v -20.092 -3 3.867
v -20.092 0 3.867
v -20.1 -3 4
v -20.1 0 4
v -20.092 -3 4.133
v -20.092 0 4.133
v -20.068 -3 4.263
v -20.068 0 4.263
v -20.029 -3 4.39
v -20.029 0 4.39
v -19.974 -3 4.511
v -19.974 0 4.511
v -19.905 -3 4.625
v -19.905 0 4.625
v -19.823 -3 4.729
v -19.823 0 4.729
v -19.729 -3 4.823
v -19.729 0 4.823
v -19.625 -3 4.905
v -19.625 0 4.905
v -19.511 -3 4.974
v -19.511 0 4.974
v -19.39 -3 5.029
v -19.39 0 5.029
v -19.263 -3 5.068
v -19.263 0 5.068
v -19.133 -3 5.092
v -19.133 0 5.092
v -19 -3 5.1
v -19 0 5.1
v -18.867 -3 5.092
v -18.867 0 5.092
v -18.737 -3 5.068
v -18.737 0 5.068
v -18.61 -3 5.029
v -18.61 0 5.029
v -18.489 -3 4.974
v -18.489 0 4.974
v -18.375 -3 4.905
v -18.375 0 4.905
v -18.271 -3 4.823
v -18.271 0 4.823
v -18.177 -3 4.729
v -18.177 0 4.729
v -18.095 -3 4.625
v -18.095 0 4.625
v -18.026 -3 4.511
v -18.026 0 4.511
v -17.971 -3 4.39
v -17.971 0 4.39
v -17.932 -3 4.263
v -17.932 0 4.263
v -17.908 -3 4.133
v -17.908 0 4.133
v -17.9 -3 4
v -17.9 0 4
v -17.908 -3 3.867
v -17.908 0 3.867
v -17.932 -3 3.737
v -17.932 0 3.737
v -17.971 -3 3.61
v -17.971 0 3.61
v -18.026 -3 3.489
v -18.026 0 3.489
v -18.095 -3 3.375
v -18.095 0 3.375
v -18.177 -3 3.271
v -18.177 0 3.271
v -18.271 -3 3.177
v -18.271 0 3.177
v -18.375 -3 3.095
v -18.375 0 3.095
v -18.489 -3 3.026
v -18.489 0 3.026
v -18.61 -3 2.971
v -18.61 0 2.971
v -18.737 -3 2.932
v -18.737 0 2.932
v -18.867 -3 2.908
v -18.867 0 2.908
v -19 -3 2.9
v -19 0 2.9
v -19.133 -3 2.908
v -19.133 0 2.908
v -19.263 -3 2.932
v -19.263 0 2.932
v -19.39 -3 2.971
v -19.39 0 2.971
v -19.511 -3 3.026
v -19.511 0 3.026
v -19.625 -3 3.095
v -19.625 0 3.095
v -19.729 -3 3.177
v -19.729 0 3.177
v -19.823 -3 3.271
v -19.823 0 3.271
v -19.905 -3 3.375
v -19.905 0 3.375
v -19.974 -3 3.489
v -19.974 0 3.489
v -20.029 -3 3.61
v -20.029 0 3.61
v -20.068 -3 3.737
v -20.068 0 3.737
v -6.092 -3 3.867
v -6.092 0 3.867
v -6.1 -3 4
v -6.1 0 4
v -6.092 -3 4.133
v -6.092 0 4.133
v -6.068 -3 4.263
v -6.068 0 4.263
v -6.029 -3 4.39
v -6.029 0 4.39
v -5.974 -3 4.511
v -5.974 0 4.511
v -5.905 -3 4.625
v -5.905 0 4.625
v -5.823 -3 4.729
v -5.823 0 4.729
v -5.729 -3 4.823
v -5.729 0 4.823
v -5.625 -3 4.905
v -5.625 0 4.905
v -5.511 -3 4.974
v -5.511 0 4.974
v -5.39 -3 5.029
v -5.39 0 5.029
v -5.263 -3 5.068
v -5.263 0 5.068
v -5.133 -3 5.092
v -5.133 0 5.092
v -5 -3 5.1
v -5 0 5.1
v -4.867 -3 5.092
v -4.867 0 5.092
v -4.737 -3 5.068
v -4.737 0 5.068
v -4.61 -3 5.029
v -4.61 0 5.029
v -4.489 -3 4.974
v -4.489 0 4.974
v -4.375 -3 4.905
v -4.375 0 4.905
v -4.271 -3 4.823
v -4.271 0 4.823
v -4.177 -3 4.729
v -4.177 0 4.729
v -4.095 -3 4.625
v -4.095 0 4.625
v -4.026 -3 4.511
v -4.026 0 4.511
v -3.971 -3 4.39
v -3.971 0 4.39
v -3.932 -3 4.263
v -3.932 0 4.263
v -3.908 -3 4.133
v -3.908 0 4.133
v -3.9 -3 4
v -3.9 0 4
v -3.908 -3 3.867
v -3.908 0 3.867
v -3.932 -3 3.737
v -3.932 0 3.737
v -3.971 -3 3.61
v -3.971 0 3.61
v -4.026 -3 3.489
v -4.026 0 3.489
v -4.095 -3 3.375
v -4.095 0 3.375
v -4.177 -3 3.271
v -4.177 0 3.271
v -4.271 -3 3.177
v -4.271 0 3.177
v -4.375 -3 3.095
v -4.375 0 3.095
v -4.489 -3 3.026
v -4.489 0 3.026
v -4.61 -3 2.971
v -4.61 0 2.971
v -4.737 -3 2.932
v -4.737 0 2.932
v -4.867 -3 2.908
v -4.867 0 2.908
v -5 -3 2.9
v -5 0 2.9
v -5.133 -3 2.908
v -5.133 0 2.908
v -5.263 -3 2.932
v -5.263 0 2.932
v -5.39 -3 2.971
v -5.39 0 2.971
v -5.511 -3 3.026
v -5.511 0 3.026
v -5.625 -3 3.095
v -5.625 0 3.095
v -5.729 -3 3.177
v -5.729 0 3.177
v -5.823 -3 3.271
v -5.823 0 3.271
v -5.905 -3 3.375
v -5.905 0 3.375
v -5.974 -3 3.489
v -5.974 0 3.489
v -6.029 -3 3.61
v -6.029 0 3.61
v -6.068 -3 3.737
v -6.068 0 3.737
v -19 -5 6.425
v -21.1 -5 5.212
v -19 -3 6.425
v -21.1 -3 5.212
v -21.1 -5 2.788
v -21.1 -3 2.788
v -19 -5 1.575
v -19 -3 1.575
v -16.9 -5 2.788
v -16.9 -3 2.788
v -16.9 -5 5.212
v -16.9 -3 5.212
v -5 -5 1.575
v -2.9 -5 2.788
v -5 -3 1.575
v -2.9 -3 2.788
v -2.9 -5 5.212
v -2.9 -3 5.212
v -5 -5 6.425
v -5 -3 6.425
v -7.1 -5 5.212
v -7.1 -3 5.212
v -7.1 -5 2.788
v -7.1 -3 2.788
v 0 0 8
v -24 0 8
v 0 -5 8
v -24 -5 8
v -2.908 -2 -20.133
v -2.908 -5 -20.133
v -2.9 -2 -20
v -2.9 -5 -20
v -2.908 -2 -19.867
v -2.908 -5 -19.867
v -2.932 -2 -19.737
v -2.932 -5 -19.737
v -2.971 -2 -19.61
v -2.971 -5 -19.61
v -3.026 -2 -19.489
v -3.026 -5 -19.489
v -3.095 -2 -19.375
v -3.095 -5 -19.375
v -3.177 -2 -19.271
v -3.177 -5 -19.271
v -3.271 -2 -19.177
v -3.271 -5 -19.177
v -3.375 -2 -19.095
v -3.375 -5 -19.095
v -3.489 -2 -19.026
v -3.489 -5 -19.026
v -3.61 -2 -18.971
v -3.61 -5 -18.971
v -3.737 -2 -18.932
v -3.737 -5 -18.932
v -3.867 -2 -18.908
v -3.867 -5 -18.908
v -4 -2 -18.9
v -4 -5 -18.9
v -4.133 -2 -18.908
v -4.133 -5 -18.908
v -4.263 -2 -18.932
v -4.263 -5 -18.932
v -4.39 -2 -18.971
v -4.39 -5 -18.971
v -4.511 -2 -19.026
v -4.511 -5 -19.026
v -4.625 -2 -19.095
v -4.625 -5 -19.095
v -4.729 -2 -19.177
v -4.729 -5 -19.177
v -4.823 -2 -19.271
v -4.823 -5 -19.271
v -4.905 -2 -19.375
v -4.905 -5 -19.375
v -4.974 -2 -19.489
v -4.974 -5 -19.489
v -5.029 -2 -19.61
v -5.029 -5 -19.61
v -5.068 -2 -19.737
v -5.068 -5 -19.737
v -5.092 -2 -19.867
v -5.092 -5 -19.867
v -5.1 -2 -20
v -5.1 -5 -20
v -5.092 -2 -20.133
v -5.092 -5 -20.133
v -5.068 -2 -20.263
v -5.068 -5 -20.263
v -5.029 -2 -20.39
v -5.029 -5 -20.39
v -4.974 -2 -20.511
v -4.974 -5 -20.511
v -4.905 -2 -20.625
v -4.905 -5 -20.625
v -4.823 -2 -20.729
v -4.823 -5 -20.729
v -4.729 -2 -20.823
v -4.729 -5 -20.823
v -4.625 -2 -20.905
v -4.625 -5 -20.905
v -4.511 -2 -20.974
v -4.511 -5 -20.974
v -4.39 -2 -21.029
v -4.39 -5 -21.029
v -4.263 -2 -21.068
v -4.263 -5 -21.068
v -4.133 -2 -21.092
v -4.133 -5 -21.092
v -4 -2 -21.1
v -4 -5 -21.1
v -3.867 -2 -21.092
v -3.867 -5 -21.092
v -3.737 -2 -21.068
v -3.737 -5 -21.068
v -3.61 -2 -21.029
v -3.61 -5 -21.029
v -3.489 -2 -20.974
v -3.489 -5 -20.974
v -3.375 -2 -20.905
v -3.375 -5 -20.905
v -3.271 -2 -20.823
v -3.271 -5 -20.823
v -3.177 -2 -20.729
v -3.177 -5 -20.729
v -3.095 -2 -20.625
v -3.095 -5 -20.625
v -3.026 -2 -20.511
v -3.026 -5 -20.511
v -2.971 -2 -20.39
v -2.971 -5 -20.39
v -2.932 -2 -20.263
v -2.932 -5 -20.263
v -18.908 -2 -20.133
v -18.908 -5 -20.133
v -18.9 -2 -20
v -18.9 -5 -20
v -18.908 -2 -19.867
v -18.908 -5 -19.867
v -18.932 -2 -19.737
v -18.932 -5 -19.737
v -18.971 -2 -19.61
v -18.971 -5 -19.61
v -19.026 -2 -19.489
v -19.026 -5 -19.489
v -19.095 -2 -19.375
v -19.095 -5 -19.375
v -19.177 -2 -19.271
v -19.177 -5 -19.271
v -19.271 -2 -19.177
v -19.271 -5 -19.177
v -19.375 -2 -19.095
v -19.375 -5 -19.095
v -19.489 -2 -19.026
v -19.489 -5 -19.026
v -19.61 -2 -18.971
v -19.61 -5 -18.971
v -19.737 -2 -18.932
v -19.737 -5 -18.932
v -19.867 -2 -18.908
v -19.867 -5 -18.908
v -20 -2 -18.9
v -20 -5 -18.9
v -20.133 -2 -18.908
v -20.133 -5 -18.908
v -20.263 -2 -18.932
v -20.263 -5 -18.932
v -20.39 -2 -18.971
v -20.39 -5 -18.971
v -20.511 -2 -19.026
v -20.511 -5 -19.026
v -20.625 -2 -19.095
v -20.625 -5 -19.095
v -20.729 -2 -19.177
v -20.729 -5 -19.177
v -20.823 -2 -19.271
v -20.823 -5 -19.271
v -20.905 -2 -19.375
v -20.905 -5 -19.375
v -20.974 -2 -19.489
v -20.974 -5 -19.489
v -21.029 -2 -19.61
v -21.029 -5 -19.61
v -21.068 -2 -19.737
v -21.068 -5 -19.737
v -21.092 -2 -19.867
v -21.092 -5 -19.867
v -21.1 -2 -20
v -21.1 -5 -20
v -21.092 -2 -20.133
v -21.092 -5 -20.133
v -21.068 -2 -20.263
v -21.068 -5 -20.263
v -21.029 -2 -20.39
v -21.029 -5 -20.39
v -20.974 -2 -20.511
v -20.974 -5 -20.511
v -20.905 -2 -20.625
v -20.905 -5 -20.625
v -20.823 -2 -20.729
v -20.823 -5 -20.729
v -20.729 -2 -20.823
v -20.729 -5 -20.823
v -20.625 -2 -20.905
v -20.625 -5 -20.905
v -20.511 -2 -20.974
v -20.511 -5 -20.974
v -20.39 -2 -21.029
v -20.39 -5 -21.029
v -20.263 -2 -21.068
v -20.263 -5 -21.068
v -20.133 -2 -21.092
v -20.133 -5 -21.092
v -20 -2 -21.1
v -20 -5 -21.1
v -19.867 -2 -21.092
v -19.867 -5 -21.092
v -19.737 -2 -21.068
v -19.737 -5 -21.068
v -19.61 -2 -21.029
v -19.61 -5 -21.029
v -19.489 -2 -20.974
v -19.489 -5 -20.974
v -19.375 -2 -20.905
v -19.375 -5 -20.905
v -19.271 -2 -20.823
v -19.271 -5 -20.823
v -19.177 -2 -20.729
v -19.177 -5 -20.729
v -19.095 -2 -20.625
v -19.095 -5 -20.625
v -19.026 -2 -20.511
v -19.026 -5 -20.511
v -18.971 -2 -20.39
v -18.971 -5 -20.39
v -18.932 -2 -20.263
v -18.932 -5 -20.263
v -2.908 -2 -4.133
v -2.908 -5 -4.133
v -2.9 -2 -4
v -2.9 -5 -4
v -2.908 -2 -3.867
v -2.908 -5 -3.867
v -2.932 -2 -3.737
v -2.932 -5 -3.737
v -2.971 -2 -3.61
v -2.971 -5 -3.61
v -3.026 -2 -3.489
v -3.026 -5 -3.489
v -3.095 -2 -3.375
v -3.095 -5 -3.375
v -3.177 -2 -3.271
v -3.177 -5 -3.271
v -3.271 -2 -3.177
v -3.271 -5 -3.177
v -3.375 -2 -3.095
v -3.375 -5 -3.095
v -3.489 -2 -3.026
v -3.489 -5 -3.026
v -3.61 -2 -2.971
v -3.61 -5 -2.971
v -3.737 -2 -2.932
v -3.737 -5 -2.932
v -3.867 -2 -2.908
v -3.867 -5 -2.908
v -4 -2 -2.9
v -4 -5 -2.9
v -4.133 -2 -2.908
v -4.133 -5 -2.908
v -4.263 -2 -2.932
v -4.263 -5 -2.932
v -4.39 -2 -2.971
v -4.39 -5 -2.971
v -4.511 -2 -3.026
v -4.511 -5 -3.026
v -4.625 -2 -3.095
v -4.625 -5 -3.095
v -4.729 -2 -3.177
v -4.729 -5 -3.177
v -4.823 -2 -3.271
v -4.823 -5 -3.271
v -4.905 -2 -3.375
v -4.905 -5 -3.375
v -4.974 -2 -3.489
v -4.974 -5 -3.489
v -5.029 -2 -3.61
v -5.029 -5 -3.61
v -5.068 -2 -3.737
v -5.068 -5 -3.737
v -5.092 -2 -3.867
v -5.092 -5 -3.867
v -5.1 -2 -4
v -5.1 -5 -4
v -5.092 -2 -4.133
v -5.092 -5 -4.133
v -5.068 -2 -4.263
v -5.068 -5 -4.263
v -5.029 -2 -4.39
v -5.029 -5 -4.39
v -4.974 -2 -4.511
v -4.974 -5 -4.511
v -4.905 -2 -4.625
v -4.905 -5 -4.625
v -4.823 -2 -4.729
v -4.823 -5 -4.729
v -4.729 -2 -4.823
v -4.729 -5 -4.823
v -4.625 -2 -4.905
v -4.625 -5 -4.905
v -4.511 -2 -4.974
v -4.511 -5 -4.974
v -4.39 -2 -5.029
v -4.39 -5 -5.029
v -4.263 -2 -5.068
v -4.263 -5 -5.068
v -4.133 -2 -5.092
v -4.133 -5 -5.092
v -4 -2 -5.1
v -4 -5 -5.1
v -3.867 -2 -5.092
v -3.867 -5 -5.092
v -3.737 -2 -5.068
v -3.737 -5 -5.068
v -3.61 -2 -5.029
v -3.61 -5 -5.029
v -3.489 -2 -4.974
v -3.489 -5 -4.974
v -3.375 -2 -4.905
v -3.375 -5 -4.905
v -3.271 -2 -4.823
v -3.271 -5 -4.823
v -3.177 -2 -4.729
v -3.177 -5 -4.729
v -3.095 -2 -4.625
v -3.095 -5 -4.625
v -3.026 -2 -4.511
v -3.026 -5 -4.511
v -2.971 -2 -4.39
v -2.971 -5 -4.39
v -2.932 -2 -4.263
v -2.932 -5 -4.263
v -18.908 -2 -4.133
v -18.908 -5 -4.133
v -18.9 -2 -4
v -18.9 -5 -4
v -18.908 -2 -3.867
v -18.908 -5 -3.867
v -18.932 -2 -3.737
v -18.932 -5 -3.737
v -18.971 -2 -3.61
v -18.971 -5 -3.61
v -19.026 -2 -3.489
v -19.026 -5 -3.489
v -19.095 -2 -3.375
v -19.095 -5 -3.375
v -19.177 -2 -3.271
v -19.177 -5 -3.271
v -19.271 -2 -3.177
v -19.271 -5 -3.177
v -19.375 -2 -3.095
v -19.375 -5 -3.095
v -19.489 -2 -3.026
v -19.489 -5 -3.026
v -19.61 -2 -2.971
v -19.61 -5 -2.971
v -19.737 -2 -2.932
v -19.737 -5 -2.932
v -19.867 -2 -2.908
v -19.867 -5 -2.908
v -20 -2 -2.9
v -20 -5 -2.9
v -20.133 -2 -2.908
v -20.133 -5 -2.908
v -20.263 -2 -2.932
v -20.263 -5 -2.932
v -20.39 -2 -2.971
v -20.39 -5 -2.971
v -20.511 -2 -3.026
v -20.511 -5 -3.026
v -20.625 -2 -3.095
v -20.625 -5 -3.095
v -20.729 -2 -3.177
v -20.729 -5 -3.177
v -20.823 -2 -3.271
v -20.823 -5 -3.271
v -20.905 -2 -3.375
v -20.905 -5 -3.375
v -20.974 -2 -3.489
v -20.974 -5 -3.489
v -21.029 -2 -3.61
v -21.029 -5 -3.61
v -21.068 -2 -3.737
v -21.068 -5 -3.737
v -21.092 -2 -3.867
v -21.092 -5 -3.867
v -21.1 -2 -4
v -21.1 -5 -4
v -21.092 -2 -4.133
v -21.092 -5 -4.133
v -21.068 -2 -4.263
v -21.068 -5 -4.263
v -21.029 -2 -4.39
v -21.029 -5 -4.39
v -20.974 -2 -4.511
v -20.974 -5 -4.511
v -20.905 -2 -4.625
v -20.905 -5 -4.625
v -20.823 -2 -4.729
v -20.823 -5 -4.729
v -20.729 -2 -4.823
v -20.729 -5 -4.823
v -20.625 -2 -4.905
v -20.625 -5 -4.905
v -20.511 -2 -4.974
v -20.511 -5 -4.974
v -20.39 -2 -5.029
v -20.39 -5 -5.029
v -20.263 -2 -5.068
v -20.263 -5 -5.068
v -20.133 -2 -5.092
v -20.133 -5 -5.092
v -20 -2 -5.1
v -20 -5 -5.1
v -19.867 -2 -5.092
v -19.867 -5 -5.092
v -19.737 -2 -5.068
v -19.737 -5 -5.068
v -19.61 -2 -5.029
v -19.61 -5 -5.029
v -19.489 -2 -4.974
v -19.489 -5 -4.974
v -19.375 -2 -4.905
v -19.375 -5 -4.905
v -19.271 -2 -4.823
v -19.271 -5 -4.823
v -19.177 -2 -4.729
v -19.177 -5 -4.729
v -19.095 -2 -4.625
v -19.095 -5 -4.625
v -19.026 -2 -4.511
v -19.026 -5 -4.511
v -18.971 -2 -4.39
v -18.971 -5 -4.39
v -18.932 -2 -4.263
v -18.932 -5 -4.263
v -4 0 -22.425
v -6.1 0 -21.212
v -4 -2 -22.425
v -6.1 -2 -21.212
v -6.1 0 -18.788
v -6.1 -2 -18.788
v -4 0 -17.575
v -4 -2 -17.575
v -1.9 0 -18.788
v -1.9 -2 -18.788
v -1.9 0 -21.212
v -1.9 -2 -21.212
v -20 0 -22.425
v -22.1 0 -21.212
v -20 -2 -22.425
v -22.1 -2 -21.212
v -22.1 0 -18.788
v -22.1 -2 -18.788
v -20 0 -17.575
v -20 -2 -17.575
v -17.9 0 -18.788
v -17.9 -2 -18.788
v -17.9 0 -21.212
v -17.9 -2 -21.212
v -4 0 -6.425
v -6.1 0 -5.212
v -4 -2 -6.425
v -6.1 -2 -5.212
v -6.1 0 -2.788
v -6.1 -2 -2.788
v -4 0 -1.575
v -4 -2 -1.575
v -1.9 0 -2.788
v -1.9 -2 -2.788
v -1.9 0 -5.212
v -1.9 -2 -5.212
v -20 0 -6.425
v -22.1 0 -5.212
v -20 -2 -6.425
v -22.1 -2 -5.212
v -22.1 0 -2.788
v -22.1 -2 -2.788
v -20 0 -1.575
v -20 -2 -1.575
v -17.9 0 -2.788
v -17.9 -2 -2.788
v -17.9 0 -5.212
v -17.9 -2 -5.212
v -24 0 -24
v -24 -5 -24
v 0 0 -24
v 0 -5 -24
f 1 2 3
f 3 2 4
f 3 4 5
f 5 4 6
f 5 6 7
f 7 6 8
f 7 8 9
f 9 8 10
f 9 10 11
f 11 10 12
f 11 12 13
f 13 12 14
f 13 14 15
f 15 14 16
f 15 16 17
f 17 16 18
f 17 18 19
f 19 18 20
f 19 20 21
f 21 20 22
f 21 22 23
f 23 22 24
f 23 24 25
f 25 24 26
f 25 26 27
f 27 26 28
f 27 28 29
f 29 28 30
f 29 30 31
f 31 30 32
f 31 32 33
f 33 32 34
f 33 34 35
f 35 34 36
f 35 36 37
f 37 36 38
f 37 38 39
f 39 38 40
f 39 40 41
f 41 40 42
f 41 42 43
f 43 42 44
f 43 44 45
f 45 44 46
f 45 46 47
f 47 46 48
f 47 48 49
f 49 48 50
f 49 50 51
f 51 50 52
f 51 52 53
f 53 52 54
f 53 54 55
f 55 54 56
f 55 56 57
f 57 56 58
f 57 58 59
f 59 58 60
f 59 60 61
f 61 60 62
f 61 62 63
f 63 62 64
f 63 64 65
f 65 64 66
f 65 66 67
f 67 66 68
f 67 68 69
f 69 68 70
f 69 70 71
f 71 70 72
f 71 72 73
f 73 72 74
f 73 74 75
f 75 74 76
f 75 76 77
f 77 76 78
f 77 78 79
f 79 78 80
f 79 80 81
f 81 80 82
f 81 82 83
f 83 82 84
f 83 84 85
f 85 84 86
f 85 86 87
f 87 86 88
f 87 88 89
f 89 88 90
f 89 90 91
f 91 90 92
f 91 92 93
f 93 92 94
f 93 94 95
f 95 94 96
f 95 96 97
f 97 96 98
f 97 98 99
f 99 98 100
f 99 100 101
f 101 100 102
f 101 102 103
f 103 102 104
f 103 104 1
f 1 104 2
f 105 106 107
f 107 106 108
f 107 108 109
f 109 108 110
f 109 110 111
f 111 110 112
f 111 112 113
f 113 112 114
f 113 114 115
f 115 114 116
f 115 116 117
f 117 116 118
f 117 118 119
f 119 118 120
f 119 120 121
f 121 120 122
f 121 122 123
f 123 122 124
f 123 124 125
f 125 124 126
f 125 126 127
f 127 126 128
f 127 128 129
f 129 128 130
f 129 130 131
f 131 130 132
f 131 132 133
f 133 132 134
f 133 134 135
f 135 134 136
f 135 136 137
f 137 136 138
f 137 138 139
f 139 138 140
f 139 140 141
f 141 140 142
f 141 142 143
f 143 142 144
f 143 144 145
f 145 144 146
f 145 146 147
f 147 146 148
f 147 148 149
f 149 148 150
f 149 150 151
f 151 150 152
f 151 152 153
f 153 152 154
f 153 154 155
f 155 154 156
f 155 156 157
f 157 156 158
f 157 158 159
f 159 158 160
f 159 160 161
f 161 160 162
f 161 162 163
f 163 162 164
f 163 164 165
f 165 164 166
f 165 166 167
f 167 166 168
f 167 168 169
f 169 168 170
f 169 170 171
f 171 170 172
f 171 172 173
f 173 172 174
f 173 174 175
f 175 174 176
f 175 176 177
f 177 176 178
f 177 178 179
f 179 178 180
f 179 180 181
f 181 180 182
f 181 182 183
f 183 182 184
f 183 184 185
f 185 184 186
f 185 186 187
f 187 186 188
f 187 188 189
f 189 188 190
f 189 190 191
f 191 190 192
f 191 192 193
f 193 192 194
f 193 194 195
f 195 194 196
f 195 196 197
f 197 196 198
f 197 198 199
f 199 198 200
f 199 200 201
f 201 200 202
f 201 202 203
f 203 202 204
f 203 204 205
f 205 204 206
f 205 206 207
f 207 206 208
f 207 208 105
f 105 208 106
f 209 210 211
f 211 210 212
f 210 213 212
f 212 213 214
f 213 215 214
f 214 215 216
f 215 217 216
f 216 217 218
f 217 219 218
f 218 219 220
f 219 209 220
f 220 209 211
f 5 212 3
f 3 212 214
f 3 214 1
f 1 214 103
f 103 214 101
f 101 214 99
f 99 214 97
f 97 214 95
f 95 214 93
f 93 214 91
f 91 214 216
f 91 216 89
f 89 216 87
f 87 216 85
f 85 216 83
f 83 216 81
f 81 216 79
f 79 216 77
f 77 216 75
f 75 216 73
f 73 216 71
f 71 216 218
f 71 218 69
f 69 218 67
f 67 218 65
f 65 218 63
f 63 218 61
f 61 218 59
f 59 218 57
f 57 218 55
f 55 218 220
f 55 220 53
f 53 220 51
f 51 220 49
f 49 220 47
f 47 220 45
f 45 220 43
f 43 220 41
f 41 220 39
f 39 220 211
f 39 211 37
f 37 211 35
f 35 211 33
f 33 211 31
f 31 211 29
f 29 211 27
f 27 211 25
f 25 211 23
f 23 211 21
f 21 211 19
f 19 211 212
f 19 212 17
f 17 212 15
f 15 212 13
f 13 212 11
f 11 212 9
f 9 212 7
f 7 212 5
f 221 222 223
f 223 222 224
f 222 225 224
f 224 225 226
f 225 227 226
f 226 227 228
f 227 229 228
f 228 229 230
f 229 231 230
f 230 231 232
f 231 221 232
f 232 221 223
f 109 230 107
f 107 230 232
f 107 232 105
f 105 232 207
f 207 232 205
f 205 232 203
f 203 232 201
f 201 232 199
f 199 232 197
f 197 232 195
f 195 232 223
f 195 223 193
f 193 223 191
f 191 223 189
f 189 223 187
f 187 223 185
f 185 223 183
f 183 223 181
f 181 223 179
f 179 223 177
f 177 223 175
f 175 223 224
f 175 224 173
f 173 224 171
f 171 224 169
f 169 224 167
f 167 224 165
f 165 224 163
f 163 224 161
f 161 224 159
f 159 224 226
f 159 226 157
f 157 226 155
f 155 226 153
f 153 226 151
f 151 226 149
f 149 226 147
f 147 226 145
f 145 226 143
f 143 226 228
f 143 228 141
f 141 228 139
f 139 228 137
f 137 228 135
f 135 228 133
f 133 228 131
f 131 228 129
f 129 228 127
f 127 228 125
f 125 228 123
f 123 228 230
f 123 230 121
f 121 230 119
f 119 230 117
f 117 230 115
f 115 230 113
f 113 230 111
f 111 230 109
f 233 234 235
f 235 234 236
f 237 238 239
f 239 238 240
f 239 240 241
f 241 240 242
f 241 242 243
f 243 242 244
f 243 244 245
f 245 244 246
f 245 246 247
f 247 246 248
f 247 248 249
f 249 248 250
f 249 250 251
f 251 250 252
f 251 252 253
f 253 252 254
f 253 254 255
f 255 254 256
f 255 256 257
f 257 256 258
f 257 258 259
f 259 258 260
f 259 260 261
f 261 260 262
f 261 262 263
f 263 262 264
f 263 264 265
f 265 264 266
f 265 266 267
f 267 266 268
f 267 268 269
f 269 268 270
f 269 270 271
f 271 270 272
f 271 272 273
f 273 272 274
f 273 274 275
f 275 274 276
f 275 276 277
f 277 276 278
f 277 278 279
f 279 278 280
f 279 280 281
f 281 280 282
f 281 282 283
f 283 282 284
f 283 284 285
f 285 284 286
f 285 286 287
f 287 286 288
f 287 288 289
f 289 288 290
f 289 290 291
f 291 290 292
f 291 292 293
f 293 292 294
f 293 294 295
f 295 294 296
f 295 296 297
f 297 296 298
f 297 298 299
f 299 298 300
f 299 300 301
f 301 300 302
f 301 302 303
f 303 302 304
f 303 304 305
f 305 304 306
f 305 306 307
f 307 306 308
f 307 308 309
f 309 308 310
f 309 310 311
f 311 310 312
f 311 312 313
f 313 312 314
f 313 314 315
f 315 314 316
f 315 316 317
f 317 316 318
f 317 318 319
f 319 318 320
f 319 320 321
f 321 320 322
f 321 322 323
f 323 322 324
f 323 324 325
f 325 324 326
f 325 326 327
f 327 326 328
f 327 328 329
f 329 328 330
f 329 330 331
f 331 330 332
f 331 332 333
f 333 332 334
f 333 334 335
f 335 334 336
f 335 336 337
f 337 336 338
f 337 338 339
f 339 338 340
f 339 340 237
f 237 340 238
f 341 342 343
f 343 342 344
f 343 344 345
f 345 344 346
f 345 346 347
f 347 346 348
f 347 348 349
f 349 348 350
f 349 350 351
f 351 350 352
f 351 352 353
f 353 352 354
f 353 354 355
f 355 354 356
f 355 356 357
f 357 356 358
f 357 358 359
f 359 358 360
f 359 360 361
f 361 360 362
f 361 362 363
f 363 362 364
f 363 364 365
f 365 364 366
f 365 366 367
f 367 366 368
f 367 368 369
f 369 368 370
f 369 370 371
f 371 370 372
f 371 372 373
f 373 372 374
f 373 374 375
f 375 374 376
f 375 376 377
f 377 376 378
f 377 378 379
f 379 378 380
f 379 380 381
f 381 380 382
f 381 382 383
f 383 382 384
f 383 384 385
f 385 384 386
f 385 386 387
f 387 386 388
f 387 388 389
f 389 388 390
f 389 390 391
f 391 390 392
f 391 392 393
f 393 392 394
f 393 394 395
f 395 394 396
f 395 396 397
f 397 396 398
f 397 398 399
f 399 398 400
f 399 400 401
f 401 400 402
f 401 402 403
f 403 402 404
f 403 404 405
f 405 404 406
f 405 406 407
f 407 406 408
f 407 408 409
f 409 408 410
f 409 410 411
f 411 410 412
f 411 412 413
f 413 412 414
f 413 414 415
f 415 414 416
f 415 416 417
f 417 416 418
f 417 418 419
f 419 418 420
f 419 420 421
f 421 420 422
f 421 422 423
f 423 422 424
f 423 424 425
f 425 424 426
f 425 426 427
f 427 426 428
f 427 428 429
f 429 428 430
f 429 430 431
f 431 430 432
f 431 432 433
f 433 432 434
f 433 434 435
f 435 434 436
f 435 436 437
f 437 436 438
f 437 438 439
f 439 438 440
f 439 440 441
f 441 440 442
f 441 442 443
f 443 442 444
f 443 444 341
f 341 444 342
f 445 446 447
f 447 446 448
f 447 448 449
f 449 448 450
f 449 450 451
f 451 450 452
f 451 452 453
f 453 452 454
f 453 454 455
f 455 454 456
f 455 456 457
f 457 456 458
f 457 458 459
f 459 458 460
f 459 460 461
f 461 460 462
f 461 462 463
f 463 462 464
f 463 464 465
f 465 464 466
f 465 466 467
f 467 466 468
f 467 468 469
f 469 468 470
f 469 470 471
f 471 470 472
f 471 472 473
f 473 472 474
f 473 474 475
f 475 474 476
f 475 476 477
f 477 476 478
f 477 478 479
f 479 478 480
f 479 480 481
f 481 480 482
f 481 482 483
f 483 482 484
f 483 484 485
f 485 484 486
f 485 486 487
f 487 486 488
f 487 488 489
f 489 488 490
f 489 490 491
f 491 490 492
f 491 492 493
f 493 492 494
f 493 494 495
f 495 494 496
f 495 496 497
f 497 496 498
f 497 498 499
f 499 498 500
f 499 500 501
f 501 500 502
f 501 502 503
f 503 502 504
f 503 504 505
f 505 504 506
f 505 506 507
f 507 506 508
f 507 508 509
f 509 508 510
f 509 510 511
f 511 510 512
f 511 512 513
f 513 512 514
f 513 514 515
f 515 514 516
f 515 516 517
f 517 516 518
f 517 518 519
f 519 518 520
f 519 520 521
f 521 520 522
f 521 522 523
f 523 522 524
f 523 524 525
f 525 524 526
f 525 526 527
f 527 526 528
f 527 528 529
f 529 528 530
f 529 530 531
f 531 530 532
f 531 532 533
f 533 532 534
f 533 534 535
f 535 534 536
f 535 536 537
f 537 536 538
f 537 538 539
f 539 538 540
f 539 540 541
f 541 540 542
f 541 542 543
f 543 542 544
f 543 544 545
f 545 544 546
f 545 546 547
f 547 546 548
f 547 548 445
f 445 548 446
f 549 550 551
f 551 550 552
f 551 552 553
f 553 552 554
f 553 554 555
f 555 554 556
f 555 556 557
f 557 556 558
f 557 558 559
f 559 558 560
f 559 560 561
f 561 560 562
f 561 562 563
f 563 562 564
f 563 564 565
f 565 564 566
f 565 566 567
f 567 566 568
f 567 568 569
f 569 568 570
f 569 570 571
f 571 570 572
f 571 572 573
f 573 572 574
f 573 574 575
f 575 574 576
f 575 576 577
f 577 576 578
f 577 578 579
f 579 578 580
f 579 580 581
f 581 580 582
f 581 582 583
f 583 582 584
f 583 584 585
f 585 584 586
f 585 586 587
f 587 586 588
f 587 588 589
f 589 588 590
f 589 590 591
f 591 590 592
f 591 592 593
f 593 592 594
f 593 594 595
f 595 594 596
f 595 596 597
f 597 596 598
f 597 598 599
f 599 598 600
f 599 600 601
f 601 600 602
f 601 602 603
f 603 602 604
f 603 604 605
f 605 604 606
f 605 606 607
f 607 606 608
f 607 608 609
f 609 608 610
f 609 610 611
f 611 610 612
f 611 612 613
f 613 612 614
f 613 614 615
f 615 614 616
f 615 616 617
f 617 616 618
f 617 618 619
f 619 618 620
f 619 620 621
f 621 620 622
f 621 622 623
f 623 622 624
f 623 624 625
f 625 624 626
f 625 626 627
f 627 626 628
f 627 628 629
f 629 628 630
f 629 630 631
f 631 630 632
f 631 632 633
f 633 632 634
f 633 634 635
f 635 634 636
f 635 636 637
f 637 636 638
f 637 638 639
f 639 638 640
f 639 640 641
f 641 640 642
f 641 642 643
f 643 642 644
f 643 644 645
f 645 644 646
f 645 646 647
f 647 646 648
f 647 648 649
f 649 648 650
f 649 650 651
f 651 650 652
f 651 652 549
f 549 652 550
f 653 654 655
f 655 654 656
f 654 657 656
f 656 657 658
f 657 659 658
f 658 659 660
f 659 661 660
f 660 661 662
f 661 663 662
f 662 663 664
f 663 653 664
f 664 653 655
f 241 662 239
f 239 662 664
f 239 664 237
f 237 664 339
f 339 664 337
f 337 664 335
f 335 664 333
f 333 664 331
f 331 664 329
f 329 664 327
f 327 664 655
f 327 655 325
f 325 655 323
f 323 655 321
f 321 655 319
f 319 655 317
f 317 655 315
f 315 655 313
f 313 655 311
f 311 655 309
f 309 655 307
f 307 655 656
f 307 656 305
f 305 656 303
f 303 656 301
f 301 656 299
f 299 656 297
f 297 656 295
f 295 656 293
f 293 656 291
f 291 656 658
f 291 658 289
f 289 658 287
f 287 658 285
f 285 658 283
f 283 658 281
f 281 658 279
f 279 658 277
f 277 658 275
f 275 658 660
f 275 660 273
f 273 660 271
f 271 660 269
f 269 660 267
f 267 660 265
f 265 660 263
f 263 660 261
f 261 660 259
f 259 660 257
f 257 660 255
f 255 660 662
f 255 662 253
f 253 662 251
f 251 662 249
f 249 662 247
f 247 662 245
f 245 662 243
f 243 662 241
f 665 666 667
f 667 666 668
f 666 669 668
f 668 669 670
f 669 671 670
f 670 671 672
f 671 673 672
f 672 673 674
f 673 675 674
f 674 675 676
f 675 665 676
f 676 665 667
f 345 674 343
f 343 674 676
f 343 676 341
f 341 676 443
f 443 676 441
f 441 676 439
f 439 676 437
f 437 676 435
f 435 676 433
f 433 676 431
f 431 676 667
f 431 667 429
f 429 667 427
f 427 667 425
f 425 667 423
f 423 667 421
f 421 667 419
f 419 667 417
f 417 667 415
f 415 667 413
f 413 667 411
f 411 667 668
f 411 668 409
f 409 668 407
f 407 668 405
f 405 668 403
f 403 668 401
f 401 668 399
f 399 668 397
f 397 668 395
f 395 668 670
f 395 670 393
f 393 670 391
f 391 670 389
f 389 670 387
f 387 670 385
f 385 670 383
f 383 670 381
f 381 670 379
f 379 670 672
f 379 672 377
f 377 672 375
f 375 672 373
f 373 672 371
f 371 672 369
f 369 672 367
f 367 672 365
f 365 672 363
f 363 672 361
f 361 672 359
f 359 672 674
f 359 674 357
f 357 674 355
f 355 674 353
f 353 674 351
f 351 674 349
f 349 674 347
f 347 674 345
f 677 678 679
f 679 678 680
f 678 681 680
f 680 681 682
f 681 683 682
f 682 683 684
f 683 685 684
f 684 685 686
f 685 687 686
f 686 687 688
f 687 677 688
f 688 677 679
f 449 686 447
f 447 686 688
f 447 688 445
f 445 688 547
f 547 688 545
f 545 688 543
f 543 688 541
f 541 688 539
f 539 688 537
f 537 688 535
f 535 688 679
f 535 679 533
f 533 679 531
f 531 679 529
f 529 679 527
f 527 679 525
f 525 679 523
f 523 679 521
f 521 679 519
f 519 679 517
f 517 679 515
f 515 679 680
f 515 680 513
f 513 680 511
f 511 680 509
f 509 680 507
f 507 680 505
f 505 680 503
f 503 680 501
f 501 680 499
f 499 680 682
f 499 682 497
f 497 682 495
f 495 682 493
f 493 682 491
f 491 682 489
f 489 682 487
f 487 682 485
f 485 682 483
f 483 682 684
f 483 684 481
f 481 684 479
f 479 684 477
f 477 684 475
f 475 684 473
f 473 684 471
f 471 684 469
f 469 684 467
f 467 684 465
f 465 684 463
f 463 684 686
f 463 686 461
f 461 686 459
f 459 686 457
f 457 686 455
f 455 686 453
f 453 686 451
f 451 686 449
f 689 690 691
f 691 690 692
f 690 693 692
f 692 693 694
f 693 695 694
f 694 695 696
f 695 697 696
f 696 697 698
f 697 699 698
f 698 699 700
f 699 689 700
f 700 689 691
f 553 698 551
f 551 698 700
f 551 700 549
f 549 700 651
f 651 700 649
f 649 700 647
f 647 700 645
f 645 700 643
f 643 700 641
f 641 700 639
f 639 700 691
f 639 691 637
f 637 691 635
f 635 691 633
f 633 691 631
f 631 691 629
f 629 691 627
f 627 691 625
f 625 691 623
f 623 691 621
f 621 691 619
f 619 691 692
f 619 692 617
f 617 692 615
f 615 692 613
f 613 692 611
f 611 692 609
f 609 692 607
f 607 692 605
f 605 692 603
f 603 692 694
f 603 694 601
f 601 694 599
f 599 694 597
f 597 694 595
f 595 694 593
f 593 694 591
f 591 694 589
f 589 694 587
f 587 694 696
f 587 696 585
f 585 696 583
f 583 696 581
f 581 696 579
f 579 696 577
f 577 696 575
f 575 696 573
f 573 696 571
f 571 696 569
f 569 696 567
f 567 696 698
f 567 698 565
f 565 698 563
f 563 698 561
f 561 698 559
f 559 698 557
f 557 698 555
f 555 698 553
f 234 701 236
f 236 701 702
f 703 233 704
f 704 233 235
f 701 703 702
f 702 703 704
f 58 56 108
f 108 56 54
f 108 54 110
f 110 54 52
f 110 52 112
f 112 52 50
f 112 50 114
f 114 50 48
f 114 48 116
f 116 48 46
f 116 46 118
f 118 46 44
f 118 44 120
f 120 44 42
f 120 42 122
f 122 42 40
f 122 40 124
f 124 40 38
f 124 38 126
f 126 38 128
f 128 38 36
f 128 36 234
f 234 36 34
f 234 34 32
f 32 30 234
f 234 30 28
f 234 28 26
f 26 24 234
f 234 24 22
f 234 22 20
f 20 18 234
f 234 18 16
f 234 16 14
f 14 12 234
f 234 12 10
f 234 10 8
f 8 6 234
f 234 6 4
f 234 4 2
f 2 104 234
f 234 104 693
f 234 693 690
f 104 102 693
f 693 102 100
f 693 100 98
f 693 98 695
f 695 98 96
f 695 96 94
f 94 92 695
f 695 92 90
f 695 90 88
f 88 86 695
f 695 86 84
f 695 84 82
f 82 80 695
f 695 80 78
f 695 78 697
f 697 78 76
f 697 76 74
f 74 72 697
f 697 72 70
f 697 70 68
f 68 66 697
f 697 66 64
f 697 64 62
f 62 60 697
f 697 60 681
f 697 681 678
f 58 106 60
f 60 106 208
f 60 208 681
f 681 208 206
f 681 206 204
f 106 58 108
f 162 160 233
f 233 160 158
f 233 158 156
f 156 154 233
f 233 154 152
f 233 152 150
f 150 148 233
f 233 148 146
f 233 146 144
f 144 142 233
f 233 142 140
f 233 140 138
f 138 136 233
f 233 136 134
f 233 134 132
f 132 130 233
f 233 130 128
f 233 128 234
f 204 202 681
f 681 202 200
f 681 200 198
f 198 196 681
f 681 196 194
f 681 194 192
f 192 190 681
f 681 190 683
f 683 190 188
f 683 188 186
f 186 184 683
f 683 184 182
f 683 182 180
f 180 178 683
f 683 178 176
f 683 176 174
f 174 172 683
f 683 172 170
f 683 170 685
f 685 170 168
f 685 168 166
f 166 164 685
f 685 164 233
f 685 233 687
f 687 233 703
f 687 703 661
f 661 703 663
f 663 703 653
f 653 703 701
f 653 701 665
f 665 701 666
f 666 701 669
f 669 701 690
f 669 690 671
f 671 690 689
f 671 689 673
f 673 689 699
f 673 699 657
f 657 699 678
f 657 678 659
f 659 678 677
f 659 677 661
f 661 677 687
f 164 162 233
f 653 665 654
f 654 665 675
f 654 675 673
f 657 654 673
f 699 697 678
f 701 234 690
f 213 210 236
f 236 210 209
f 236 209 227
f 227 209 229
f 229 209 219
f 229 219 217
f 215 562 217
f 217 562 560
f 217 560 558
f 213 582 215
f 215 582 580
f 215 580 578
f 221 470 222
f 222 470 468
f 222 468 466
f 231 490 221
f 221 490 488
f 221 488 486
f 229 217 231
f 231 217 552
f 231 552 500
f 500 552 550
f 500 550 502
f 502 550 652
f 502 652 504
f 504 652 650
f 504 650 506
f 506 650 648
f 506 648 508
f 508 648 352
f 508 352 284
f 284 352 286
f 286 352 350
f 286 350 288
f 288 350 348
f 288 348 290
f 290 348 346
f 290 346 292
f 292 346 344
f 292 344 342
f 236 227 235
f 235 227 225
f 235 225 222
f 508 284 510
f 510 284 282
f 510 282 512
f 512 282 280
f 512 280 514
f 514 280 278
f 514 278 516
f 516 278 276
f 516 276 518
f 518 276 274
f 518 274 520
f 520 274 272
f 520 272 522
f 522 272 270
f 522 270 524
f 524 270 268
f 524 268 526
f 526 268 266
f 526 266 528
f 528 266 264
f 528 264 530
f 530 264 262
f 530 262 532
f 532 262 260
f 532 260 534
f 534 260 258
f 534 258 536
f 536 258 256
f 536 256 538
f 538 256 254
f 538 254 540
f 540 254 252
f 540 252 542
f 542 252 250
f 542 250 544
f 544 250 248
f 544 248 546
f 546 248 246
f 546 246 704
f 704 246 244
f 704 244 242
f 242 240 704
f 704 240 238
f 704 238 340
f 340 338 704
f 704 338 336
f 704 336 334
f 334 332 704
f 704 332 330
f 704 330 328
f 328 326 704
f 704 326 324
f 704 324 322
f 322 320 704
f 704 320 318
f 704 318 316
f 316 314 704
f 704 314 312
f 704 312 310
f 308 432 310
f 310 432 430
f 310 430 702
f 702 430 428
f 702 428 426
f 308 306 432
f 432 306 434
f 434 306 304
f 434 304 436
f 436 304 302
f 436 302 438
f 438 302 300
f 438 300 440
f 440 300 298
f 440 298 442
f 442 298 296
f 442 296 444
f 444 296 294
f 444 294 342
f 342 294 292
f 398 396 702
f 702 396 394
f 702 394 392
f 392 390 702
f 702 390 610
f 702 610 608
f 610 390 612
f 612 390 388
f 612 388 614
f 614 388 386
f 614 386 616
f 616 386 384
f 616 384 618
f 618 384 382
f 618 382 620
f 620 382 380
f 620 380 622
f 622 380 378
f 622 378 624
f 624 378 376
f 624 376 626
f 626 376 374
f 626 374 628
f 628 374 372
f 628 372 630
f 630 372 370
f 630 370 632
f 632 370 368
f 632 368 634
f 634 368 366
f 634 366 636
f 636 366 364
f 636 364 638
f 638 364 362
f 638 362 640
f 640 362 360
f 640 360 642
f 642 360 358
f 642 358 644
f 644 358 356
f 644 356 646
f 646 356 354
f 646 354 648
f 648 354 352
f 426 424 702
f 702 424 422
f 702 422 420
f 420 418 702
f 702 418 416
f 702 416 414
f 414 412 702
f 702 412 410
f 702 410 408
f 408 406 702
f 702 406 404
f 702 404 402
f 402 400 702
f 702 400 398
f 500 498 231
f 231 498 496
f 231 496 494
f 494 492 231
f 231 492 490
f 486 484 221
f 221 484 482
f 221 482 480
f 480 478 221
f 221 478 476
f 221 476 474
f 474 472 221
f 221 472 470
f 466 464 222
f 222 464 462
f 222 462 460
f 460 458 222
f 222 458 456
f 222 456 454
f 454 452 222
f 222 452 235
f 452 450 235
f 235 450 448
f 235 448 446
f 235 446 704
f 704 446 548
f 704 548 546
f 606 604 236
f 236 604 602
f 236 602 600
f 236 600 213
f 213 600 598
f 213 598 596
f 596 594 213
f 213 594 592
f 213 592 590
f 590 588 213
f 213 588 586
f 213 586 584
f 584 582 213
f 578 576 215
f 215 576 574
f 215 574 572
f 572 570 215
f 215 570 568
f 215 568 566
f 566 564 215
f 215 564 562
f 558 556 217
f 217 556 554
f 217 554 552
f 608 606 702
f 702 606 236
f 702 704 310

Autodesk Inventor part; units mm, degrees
ref_plane "YZ Plane" through (0, 0, 0) normal (1, 0, 0) x (0, 1, 0)
ref_plane "XZ Plane" through (0, 0, 0) normal (0, 1, 0) x (-1, 0, 0)
ref_plane "XY Plane" through (0, 0, 0) normal (0, 0, 1) x (1, 0, 0)
sketch "스케치1" plane through (0, 0, 0) normal (0, 1, 0) x (-1, 0, 0)
  line L0 (0, 0) -> (24, 0)
  line L1 (24, 0) -> (24, -24)
  line L2 (24, -24) -> (0, -24)
  line L3 (0, -24) -> (0, 0)
  circle A0 centre (4, -4) radius 1.1
  circle A1 centre (4, -4) radius 2.1
  line L4 (1.9, -4) -> (4, -4)
  line L5 (1.9, -2.7876) -> (4, -1.5751)
  line L6 (4, -1.5751) -> (6.1, -2.7876)
  line L7 (6.1, -2.7876) -> (6.1, -5.2124)
  line L8 (6.1, -5.2124) -> (4, -6.4249)
  line L9 (4, -6.4249) -> (1.9, -5.2124)
  line L10 (1.9, -5.2124) -> (1.9, -2.7876)
  circle A2 centre (4, -20) radius 1.1
  circle A3 centre (4, -20) radius 2.1
  line L11 (1.9, -20) -> (4, -20)
  line L12 (1.9, -18.7876) -> (4, -17.5751)
  line L13 (4, -17.5751) -> (6.1, -18.7876)
  line L14 (6.1, -18.7876) -> (6.1, -21.2124)
  line L15 (6.1, -21.2124) -> (4, -22.4249)
  line L16 (4, -22.4249) -> (1.9, -21.2124)
  line L17 (1.9, -21.2124) -> (1.9, -18.7876)
  circle A4 centre (20, -4) radius 1.1
  circle A5 centre (20, -4) radius 2.1
  line L18 (17.9, -4) -> (20, -4)
  line L19 (17.9, -2.7876) -> (20, -1.5751)
  line L20 (20, -1.5751) -> (22.1, -2.7876)
  line L21 (22.1, -2.7876) -> (22.1, -5.2124)
  line L22 (22.1, -5.2124) -> (20, -6.4249)
  line L23 (20, -6.4249) -> (17.9, -5.2124)
  line L24 (17.9, -5.2124) -> (17.9, -2.7876)
  circle A6 centre (20, -20) radius 1.1
  circle A7 centre (20, -20) radius 2.1
  line L25 (17.9, -20) -> (20, -20)
  line L26 (17.9, -18.7876) -> (20, -17.5751)
  line L27 (20, -17.5751) -> (22.1, -18.7876)
  line L28 (22.1, -18.7876) -> (22.1, -21.2124)
  line L29 (22.1, -21.2124) -> (20, -22.4249)
  line L30 (20, -22.4249) -> (17.9, -21.2124)
  line L31 (17.9, -21.2124) -> (17.9, -18.7876)
  line L32 (12, 0) -> (12, 4)
  line L33 (12, 4) -> (19, 4)
  line L34 (12, 4) -> (5, 4)
  dimension "d3" = 4.2
  dimension "d0" = 24
  dimension "d1" = 24
  dimension "d2" = 2.2
  dimension "d6" = 16
  dimension "d9" = 16
  dimension "d12" = 4
  dimension "d13" = 7
  dimension "d14" = 7
extrude "돌출1" add sketch "스케치1" against normal blind 5 contours L0 L1 L2 L3 | A0 | A1 | A1 L9 L10 | L10 L5 A1 | L5 L6 A1 | A1 L8 L9 | L6 L7 A1 | A1 L7 L8 | A2 | A3 | A3 L16 L17 | L17 L12 A3 | L12 L13 A3 | A3 L15 L16 | L13 L14 A3 | A3 L14 L15 | A4 | A5 | A5 L23 L24 | L24 L19 A5 | L19 L20 A5 | A5 L22 L23 | L20 L21 A5 | A5 L21 L22 | A6 | A7 | A7 L30 L31 | L31 L26 A7 | L26 L27 A7 | A7 L29 L30 | L27 L28 A7 | A7 L28 L29
extrude "돌출2" cut sketch "스케치1" against normal blind 2 contours A0 | A1 | A1 L9 L10 | L10 L5 A1 | L5 L6 A1 | A1 L8 L9 | L6 L7 A1 | A1 L7 L8 | A2 | A3 | A3 L16 L17 | L17 L12 A3 | L12 L13 A3 | A3 L15 L16 | L13 L14 A3 | A3 L14 L15 | A4 | A5 | A5 L23 L24 | L24 L19 A5 | L19 L20 A5 | A5 L22 L23 | L20 L21 A5 | A5 L21 L22 | A6 | A7 | A7 L30 L31 | L31 L26 A7 | L26 L27 A7 | A7 L29 L30 | L27 L28 A7 | A7 L28 L29
extrude "돌출3" cut sketch "스케치1" against normal blind 5 contours A0 | A2 | A4 | A6
sketch "스케치2" plane through (0, 0, 0) normal (0, 1, 0) x (1, 0, 0)
  line L0 (0, 0) -> (-24, 0)
  line L1 (-24, 0) -> (-24, -8)
  line L2 (-24, -8) -> (0, -8)
  line L3 (0, -8) -> (0, 0)
  dimension "d21" = 8
extrude "돌출4" add sketch "스케치2" against normal blind 5
sketch "스케치3" plane through (0, -5, 0) normal (0, -1, 0) x (1, 0, 0)
  line L0 (0, 0) -> (-12, 0)
  line L1 (-12, 0) -> (-12, 4)
  line L2 (-12, 4) -> (-5, 4)
  line L3 (-12, 4) -> (-19, 4)
  circle A0 centre (-5, 4) radius 1.1
  circle A1 centre (-5, 4) radius 2.1
  circle A2 centre (-19, 4) radius 1.1
  circle A3 centre (-19, 4) radius 2.1
  line L4 (-2.9, 2.7876) -> (-5, 1.5751)
  line L5 (-5, 1.5751) -> (-7.1, 2.7876)
  line L6 (-7.1, 2.7876) -> (-7.1, 5.2124)
  line L7 (-7.1, 5.2124) -> (-5, 6.4249)
  line L8 (-5, 6.4249) -> (-2.9, 5.2124)
  line L9 (-2.9, 5.2124) -> (-2.9, 2.7876)
  line L10 (-21.1, 5.2124) -> (-19, 6.4249)
  line L11 (-19, 6.4249) -> (-16.9, 5.2124)
  line L12 (-16.9, 5.2124) -> (-16.9, 2.7876)
  line L13 (-16.9, 2.7876) -> (-19, 1.5751)
  line L14 (-19, 1.5751) -> (-21.1, 2.7876)
  line L15 (-21.1, 2.7876) -> (-21.1, 5.2124)
  point P0 (-2.9, 4)
  point P1 (-21.1, 4)
  dimension "d29" = 4.2
  dimension "d31" = 4.2
  dimension "d24" = 12
  dimension "d25" = 4
  dimension "d26" = 7
  dimension "d27" = 7
  dimension "d28" = 2.2
  dimension "d30" = 2.2
extrude "돌출5" cut sketch "스케치3" against normal blind 2 contours L6 L7 A1 | A0 | A1 | A1 L5 L6 | L12 L13 A3 | A2 | A3 | A3 L11 L12 | L7 L8 A1 | A1 L4 L5 | A3 L10 L11 | L13 L14 A3 | L8 L9 A1 | A1 L9 L4 | A3 L15 L10 | L14 L15 A3
extrude "돌출6" cut sketch "스케치3" against normal blind 5 contours A0 | A2
properties part number "robot_left"
